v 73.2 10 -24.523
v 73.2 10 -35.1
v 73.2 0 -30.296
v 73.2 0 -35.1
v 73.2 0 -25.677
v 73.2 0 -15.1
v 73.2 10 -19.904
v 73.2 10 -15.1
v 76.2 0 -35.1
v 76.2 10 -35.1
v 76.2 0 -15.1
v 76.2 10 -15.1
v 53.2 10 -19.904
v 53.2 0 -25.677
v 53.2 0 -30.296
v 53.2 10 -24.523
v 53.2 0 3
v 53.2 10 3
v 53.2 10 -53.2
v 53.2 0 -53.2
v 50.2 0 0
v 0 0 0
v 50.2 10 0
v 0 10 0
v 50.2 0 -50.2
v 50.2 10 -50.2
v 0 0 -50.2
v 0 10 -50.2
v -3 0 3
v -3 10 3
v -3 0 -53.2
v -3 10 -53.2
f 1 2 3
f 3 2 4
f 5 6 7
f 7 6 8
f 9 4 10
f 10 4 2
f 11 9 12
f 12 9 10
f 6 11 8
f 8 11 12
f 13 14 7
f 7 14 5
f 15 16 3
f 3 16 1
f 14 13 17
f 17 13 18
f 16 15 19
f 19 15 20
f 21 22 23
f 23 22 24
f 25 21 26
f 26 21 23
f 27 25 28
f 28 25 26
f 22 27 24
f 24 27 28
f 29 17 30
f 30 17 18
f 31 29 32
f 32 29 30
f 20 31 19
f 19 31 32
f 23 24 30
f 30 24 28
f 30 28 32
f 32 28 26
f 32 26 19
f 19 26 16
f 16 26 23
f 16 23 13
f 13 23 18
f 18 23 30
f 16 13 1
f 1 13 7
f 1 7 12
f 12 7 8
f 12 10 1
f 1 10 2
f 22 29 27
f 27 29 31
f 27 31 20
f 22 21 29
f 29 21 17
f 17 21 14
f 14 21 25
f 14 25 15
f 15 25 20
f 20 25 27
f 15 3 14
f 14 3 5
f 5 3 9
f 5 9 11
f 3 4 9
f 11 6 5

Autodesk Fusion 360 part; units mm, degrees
sketch "Base Mount Sketch" plane through (0, 0, 0) normal (0, 1, 0) x (1, 0, 0) in component "Mount"
  line L0 (0, 0) -> (50.2, 0)
  line L1 (50.2, 0) -> (50.2, 50.2)
  line L2 (50.2, 50.2) -> (0, 50.2)
  line L3 (0, 50.2) -> (0, 0)
  line L4 (73.2, 35.1) -> (76.2, 35.1)
  line L5 (76.2, 35.1) -> (76.2, 15.1)
  line L6 (76.2, 15.1) -> (73.2, 15.1)
  line L7 (73.2, 15.1) -> (73.2, 35.1)
  line L8 (0, 25.1) -> (53.2, 25.1) construction
  line L9 (73.2, 23.6) -> (53.2, 23.6)
  line L10 (53.2, 23.6) -> (53.2, -3)
  line L11 (53.2, -3) -> (-3, -3)
  line L12 (-3, -3) -> (-3, 53.2)
  line L13 (-3, 53.2) -> (53.2, 53.2)
  line L14 (53.2, 53.2) -> (53.2, 26.6)
  line L15 (53.2, 26.6) -> (73.2, 26.6)
  line L16 (53.2, 26.6) -> (53.2, 23.6)
  line L17 (53.2, 25.1) -> (73.2, 25.1) construction
  dimension "d1" = 50.2
  dimension "d2" = 50.2
  dimension "d5" = 3
  dimension "d6" = 20
  dimension "d8" = 3
  dimension "d9" = 3
  dimension "d10" = 3
  dimension "d11" = 3
  dimension "d12" = 3
  dimension "d13" = 20
extrude "Extrude1" add sketch "Base Mount Sketch" along normal blind 10 contours L10 L11 L12 L13 L14 L16 in component "Mount"
sketch "Tweezer Mount Tilt sketch" plane through (53.2, 0, 0) normal (1, 0, 0) x (0, 0, -1) in component "Mount"
  line L0 (-3, 0) -> (53.2, 0)
  line L1 (53.2, 0) -> (53.2, 10)
  line L2 (53.2, 10) -> (-3, 10)
  line L3 (-3, 10) -> (-3, 0)
  line L4 (25.1, 0) -> (25.1, 10) construction
  line L5 (30.2962, 0) -> (24.5226, 10)
  line L6 (25.6774, 0) -> (19.9038, 10)
  line L7 (25.1, 5) -> (30.2962, 0) construction
  line L8 (25.6774, 0) -> (24.5226, 10) construction
  line L9 (19.9038, 10) -> (25.1, 5) construction
  dimension "d25" = 4
  dimension "d32" = 60
extrude "Extrude2" add sketch "Tweezer Mount Tilt sketch" along normal blind 20 contours L0 L2 L5 L6 in component "Mount"
extrude "Extrude3" add sketch "Base Mount Sketch" along normal blind 10 contours L4 L5 L6 L7 in component "Mount"
component "Mount" placed x (1, 0, 0) y (0, 1, 0) z (0, 0, 1) at (0, 0, 0)
equation "d1 = IPA_container_size + fitting_clearance"
equation "d2 = IPA_container_size + fitting_clearance"
equation "nominal_thickness = 3 mm"
equation "IPA_container_size = 50 mm"
equation "d5 = nominal_thickness"
equation "d6 = stopend_width"
equation "d8 = nominal_thickness"
equation "d9 = nominal_thickness"
equation "d10 = nominal_thickness"
equation "d11 = nominal_thickness"
equation "d12 = nominal_thickness"
equation "d13 = tweezer_mount_width"
equation "tweezer_mount_width = 20 mm"
equation "stopend_width = 20 mm"
equation "fitting_clearance = 0.2 mm"
equation "attachment_height = 10 mm"
equation "d18 = attachment_height"
equation "d25 = tweezer_mount_thickness"
equation "tweezer_mount_thickness = nominal_thickness + 1 mm"
equation "d27 = tweezer_mount_width"
equation "d29 = attachment_height"
equation "tweezer_mount_tilt_angle = 60 deg"
equation "d32 = tweezer_mount_tilt_angle"
